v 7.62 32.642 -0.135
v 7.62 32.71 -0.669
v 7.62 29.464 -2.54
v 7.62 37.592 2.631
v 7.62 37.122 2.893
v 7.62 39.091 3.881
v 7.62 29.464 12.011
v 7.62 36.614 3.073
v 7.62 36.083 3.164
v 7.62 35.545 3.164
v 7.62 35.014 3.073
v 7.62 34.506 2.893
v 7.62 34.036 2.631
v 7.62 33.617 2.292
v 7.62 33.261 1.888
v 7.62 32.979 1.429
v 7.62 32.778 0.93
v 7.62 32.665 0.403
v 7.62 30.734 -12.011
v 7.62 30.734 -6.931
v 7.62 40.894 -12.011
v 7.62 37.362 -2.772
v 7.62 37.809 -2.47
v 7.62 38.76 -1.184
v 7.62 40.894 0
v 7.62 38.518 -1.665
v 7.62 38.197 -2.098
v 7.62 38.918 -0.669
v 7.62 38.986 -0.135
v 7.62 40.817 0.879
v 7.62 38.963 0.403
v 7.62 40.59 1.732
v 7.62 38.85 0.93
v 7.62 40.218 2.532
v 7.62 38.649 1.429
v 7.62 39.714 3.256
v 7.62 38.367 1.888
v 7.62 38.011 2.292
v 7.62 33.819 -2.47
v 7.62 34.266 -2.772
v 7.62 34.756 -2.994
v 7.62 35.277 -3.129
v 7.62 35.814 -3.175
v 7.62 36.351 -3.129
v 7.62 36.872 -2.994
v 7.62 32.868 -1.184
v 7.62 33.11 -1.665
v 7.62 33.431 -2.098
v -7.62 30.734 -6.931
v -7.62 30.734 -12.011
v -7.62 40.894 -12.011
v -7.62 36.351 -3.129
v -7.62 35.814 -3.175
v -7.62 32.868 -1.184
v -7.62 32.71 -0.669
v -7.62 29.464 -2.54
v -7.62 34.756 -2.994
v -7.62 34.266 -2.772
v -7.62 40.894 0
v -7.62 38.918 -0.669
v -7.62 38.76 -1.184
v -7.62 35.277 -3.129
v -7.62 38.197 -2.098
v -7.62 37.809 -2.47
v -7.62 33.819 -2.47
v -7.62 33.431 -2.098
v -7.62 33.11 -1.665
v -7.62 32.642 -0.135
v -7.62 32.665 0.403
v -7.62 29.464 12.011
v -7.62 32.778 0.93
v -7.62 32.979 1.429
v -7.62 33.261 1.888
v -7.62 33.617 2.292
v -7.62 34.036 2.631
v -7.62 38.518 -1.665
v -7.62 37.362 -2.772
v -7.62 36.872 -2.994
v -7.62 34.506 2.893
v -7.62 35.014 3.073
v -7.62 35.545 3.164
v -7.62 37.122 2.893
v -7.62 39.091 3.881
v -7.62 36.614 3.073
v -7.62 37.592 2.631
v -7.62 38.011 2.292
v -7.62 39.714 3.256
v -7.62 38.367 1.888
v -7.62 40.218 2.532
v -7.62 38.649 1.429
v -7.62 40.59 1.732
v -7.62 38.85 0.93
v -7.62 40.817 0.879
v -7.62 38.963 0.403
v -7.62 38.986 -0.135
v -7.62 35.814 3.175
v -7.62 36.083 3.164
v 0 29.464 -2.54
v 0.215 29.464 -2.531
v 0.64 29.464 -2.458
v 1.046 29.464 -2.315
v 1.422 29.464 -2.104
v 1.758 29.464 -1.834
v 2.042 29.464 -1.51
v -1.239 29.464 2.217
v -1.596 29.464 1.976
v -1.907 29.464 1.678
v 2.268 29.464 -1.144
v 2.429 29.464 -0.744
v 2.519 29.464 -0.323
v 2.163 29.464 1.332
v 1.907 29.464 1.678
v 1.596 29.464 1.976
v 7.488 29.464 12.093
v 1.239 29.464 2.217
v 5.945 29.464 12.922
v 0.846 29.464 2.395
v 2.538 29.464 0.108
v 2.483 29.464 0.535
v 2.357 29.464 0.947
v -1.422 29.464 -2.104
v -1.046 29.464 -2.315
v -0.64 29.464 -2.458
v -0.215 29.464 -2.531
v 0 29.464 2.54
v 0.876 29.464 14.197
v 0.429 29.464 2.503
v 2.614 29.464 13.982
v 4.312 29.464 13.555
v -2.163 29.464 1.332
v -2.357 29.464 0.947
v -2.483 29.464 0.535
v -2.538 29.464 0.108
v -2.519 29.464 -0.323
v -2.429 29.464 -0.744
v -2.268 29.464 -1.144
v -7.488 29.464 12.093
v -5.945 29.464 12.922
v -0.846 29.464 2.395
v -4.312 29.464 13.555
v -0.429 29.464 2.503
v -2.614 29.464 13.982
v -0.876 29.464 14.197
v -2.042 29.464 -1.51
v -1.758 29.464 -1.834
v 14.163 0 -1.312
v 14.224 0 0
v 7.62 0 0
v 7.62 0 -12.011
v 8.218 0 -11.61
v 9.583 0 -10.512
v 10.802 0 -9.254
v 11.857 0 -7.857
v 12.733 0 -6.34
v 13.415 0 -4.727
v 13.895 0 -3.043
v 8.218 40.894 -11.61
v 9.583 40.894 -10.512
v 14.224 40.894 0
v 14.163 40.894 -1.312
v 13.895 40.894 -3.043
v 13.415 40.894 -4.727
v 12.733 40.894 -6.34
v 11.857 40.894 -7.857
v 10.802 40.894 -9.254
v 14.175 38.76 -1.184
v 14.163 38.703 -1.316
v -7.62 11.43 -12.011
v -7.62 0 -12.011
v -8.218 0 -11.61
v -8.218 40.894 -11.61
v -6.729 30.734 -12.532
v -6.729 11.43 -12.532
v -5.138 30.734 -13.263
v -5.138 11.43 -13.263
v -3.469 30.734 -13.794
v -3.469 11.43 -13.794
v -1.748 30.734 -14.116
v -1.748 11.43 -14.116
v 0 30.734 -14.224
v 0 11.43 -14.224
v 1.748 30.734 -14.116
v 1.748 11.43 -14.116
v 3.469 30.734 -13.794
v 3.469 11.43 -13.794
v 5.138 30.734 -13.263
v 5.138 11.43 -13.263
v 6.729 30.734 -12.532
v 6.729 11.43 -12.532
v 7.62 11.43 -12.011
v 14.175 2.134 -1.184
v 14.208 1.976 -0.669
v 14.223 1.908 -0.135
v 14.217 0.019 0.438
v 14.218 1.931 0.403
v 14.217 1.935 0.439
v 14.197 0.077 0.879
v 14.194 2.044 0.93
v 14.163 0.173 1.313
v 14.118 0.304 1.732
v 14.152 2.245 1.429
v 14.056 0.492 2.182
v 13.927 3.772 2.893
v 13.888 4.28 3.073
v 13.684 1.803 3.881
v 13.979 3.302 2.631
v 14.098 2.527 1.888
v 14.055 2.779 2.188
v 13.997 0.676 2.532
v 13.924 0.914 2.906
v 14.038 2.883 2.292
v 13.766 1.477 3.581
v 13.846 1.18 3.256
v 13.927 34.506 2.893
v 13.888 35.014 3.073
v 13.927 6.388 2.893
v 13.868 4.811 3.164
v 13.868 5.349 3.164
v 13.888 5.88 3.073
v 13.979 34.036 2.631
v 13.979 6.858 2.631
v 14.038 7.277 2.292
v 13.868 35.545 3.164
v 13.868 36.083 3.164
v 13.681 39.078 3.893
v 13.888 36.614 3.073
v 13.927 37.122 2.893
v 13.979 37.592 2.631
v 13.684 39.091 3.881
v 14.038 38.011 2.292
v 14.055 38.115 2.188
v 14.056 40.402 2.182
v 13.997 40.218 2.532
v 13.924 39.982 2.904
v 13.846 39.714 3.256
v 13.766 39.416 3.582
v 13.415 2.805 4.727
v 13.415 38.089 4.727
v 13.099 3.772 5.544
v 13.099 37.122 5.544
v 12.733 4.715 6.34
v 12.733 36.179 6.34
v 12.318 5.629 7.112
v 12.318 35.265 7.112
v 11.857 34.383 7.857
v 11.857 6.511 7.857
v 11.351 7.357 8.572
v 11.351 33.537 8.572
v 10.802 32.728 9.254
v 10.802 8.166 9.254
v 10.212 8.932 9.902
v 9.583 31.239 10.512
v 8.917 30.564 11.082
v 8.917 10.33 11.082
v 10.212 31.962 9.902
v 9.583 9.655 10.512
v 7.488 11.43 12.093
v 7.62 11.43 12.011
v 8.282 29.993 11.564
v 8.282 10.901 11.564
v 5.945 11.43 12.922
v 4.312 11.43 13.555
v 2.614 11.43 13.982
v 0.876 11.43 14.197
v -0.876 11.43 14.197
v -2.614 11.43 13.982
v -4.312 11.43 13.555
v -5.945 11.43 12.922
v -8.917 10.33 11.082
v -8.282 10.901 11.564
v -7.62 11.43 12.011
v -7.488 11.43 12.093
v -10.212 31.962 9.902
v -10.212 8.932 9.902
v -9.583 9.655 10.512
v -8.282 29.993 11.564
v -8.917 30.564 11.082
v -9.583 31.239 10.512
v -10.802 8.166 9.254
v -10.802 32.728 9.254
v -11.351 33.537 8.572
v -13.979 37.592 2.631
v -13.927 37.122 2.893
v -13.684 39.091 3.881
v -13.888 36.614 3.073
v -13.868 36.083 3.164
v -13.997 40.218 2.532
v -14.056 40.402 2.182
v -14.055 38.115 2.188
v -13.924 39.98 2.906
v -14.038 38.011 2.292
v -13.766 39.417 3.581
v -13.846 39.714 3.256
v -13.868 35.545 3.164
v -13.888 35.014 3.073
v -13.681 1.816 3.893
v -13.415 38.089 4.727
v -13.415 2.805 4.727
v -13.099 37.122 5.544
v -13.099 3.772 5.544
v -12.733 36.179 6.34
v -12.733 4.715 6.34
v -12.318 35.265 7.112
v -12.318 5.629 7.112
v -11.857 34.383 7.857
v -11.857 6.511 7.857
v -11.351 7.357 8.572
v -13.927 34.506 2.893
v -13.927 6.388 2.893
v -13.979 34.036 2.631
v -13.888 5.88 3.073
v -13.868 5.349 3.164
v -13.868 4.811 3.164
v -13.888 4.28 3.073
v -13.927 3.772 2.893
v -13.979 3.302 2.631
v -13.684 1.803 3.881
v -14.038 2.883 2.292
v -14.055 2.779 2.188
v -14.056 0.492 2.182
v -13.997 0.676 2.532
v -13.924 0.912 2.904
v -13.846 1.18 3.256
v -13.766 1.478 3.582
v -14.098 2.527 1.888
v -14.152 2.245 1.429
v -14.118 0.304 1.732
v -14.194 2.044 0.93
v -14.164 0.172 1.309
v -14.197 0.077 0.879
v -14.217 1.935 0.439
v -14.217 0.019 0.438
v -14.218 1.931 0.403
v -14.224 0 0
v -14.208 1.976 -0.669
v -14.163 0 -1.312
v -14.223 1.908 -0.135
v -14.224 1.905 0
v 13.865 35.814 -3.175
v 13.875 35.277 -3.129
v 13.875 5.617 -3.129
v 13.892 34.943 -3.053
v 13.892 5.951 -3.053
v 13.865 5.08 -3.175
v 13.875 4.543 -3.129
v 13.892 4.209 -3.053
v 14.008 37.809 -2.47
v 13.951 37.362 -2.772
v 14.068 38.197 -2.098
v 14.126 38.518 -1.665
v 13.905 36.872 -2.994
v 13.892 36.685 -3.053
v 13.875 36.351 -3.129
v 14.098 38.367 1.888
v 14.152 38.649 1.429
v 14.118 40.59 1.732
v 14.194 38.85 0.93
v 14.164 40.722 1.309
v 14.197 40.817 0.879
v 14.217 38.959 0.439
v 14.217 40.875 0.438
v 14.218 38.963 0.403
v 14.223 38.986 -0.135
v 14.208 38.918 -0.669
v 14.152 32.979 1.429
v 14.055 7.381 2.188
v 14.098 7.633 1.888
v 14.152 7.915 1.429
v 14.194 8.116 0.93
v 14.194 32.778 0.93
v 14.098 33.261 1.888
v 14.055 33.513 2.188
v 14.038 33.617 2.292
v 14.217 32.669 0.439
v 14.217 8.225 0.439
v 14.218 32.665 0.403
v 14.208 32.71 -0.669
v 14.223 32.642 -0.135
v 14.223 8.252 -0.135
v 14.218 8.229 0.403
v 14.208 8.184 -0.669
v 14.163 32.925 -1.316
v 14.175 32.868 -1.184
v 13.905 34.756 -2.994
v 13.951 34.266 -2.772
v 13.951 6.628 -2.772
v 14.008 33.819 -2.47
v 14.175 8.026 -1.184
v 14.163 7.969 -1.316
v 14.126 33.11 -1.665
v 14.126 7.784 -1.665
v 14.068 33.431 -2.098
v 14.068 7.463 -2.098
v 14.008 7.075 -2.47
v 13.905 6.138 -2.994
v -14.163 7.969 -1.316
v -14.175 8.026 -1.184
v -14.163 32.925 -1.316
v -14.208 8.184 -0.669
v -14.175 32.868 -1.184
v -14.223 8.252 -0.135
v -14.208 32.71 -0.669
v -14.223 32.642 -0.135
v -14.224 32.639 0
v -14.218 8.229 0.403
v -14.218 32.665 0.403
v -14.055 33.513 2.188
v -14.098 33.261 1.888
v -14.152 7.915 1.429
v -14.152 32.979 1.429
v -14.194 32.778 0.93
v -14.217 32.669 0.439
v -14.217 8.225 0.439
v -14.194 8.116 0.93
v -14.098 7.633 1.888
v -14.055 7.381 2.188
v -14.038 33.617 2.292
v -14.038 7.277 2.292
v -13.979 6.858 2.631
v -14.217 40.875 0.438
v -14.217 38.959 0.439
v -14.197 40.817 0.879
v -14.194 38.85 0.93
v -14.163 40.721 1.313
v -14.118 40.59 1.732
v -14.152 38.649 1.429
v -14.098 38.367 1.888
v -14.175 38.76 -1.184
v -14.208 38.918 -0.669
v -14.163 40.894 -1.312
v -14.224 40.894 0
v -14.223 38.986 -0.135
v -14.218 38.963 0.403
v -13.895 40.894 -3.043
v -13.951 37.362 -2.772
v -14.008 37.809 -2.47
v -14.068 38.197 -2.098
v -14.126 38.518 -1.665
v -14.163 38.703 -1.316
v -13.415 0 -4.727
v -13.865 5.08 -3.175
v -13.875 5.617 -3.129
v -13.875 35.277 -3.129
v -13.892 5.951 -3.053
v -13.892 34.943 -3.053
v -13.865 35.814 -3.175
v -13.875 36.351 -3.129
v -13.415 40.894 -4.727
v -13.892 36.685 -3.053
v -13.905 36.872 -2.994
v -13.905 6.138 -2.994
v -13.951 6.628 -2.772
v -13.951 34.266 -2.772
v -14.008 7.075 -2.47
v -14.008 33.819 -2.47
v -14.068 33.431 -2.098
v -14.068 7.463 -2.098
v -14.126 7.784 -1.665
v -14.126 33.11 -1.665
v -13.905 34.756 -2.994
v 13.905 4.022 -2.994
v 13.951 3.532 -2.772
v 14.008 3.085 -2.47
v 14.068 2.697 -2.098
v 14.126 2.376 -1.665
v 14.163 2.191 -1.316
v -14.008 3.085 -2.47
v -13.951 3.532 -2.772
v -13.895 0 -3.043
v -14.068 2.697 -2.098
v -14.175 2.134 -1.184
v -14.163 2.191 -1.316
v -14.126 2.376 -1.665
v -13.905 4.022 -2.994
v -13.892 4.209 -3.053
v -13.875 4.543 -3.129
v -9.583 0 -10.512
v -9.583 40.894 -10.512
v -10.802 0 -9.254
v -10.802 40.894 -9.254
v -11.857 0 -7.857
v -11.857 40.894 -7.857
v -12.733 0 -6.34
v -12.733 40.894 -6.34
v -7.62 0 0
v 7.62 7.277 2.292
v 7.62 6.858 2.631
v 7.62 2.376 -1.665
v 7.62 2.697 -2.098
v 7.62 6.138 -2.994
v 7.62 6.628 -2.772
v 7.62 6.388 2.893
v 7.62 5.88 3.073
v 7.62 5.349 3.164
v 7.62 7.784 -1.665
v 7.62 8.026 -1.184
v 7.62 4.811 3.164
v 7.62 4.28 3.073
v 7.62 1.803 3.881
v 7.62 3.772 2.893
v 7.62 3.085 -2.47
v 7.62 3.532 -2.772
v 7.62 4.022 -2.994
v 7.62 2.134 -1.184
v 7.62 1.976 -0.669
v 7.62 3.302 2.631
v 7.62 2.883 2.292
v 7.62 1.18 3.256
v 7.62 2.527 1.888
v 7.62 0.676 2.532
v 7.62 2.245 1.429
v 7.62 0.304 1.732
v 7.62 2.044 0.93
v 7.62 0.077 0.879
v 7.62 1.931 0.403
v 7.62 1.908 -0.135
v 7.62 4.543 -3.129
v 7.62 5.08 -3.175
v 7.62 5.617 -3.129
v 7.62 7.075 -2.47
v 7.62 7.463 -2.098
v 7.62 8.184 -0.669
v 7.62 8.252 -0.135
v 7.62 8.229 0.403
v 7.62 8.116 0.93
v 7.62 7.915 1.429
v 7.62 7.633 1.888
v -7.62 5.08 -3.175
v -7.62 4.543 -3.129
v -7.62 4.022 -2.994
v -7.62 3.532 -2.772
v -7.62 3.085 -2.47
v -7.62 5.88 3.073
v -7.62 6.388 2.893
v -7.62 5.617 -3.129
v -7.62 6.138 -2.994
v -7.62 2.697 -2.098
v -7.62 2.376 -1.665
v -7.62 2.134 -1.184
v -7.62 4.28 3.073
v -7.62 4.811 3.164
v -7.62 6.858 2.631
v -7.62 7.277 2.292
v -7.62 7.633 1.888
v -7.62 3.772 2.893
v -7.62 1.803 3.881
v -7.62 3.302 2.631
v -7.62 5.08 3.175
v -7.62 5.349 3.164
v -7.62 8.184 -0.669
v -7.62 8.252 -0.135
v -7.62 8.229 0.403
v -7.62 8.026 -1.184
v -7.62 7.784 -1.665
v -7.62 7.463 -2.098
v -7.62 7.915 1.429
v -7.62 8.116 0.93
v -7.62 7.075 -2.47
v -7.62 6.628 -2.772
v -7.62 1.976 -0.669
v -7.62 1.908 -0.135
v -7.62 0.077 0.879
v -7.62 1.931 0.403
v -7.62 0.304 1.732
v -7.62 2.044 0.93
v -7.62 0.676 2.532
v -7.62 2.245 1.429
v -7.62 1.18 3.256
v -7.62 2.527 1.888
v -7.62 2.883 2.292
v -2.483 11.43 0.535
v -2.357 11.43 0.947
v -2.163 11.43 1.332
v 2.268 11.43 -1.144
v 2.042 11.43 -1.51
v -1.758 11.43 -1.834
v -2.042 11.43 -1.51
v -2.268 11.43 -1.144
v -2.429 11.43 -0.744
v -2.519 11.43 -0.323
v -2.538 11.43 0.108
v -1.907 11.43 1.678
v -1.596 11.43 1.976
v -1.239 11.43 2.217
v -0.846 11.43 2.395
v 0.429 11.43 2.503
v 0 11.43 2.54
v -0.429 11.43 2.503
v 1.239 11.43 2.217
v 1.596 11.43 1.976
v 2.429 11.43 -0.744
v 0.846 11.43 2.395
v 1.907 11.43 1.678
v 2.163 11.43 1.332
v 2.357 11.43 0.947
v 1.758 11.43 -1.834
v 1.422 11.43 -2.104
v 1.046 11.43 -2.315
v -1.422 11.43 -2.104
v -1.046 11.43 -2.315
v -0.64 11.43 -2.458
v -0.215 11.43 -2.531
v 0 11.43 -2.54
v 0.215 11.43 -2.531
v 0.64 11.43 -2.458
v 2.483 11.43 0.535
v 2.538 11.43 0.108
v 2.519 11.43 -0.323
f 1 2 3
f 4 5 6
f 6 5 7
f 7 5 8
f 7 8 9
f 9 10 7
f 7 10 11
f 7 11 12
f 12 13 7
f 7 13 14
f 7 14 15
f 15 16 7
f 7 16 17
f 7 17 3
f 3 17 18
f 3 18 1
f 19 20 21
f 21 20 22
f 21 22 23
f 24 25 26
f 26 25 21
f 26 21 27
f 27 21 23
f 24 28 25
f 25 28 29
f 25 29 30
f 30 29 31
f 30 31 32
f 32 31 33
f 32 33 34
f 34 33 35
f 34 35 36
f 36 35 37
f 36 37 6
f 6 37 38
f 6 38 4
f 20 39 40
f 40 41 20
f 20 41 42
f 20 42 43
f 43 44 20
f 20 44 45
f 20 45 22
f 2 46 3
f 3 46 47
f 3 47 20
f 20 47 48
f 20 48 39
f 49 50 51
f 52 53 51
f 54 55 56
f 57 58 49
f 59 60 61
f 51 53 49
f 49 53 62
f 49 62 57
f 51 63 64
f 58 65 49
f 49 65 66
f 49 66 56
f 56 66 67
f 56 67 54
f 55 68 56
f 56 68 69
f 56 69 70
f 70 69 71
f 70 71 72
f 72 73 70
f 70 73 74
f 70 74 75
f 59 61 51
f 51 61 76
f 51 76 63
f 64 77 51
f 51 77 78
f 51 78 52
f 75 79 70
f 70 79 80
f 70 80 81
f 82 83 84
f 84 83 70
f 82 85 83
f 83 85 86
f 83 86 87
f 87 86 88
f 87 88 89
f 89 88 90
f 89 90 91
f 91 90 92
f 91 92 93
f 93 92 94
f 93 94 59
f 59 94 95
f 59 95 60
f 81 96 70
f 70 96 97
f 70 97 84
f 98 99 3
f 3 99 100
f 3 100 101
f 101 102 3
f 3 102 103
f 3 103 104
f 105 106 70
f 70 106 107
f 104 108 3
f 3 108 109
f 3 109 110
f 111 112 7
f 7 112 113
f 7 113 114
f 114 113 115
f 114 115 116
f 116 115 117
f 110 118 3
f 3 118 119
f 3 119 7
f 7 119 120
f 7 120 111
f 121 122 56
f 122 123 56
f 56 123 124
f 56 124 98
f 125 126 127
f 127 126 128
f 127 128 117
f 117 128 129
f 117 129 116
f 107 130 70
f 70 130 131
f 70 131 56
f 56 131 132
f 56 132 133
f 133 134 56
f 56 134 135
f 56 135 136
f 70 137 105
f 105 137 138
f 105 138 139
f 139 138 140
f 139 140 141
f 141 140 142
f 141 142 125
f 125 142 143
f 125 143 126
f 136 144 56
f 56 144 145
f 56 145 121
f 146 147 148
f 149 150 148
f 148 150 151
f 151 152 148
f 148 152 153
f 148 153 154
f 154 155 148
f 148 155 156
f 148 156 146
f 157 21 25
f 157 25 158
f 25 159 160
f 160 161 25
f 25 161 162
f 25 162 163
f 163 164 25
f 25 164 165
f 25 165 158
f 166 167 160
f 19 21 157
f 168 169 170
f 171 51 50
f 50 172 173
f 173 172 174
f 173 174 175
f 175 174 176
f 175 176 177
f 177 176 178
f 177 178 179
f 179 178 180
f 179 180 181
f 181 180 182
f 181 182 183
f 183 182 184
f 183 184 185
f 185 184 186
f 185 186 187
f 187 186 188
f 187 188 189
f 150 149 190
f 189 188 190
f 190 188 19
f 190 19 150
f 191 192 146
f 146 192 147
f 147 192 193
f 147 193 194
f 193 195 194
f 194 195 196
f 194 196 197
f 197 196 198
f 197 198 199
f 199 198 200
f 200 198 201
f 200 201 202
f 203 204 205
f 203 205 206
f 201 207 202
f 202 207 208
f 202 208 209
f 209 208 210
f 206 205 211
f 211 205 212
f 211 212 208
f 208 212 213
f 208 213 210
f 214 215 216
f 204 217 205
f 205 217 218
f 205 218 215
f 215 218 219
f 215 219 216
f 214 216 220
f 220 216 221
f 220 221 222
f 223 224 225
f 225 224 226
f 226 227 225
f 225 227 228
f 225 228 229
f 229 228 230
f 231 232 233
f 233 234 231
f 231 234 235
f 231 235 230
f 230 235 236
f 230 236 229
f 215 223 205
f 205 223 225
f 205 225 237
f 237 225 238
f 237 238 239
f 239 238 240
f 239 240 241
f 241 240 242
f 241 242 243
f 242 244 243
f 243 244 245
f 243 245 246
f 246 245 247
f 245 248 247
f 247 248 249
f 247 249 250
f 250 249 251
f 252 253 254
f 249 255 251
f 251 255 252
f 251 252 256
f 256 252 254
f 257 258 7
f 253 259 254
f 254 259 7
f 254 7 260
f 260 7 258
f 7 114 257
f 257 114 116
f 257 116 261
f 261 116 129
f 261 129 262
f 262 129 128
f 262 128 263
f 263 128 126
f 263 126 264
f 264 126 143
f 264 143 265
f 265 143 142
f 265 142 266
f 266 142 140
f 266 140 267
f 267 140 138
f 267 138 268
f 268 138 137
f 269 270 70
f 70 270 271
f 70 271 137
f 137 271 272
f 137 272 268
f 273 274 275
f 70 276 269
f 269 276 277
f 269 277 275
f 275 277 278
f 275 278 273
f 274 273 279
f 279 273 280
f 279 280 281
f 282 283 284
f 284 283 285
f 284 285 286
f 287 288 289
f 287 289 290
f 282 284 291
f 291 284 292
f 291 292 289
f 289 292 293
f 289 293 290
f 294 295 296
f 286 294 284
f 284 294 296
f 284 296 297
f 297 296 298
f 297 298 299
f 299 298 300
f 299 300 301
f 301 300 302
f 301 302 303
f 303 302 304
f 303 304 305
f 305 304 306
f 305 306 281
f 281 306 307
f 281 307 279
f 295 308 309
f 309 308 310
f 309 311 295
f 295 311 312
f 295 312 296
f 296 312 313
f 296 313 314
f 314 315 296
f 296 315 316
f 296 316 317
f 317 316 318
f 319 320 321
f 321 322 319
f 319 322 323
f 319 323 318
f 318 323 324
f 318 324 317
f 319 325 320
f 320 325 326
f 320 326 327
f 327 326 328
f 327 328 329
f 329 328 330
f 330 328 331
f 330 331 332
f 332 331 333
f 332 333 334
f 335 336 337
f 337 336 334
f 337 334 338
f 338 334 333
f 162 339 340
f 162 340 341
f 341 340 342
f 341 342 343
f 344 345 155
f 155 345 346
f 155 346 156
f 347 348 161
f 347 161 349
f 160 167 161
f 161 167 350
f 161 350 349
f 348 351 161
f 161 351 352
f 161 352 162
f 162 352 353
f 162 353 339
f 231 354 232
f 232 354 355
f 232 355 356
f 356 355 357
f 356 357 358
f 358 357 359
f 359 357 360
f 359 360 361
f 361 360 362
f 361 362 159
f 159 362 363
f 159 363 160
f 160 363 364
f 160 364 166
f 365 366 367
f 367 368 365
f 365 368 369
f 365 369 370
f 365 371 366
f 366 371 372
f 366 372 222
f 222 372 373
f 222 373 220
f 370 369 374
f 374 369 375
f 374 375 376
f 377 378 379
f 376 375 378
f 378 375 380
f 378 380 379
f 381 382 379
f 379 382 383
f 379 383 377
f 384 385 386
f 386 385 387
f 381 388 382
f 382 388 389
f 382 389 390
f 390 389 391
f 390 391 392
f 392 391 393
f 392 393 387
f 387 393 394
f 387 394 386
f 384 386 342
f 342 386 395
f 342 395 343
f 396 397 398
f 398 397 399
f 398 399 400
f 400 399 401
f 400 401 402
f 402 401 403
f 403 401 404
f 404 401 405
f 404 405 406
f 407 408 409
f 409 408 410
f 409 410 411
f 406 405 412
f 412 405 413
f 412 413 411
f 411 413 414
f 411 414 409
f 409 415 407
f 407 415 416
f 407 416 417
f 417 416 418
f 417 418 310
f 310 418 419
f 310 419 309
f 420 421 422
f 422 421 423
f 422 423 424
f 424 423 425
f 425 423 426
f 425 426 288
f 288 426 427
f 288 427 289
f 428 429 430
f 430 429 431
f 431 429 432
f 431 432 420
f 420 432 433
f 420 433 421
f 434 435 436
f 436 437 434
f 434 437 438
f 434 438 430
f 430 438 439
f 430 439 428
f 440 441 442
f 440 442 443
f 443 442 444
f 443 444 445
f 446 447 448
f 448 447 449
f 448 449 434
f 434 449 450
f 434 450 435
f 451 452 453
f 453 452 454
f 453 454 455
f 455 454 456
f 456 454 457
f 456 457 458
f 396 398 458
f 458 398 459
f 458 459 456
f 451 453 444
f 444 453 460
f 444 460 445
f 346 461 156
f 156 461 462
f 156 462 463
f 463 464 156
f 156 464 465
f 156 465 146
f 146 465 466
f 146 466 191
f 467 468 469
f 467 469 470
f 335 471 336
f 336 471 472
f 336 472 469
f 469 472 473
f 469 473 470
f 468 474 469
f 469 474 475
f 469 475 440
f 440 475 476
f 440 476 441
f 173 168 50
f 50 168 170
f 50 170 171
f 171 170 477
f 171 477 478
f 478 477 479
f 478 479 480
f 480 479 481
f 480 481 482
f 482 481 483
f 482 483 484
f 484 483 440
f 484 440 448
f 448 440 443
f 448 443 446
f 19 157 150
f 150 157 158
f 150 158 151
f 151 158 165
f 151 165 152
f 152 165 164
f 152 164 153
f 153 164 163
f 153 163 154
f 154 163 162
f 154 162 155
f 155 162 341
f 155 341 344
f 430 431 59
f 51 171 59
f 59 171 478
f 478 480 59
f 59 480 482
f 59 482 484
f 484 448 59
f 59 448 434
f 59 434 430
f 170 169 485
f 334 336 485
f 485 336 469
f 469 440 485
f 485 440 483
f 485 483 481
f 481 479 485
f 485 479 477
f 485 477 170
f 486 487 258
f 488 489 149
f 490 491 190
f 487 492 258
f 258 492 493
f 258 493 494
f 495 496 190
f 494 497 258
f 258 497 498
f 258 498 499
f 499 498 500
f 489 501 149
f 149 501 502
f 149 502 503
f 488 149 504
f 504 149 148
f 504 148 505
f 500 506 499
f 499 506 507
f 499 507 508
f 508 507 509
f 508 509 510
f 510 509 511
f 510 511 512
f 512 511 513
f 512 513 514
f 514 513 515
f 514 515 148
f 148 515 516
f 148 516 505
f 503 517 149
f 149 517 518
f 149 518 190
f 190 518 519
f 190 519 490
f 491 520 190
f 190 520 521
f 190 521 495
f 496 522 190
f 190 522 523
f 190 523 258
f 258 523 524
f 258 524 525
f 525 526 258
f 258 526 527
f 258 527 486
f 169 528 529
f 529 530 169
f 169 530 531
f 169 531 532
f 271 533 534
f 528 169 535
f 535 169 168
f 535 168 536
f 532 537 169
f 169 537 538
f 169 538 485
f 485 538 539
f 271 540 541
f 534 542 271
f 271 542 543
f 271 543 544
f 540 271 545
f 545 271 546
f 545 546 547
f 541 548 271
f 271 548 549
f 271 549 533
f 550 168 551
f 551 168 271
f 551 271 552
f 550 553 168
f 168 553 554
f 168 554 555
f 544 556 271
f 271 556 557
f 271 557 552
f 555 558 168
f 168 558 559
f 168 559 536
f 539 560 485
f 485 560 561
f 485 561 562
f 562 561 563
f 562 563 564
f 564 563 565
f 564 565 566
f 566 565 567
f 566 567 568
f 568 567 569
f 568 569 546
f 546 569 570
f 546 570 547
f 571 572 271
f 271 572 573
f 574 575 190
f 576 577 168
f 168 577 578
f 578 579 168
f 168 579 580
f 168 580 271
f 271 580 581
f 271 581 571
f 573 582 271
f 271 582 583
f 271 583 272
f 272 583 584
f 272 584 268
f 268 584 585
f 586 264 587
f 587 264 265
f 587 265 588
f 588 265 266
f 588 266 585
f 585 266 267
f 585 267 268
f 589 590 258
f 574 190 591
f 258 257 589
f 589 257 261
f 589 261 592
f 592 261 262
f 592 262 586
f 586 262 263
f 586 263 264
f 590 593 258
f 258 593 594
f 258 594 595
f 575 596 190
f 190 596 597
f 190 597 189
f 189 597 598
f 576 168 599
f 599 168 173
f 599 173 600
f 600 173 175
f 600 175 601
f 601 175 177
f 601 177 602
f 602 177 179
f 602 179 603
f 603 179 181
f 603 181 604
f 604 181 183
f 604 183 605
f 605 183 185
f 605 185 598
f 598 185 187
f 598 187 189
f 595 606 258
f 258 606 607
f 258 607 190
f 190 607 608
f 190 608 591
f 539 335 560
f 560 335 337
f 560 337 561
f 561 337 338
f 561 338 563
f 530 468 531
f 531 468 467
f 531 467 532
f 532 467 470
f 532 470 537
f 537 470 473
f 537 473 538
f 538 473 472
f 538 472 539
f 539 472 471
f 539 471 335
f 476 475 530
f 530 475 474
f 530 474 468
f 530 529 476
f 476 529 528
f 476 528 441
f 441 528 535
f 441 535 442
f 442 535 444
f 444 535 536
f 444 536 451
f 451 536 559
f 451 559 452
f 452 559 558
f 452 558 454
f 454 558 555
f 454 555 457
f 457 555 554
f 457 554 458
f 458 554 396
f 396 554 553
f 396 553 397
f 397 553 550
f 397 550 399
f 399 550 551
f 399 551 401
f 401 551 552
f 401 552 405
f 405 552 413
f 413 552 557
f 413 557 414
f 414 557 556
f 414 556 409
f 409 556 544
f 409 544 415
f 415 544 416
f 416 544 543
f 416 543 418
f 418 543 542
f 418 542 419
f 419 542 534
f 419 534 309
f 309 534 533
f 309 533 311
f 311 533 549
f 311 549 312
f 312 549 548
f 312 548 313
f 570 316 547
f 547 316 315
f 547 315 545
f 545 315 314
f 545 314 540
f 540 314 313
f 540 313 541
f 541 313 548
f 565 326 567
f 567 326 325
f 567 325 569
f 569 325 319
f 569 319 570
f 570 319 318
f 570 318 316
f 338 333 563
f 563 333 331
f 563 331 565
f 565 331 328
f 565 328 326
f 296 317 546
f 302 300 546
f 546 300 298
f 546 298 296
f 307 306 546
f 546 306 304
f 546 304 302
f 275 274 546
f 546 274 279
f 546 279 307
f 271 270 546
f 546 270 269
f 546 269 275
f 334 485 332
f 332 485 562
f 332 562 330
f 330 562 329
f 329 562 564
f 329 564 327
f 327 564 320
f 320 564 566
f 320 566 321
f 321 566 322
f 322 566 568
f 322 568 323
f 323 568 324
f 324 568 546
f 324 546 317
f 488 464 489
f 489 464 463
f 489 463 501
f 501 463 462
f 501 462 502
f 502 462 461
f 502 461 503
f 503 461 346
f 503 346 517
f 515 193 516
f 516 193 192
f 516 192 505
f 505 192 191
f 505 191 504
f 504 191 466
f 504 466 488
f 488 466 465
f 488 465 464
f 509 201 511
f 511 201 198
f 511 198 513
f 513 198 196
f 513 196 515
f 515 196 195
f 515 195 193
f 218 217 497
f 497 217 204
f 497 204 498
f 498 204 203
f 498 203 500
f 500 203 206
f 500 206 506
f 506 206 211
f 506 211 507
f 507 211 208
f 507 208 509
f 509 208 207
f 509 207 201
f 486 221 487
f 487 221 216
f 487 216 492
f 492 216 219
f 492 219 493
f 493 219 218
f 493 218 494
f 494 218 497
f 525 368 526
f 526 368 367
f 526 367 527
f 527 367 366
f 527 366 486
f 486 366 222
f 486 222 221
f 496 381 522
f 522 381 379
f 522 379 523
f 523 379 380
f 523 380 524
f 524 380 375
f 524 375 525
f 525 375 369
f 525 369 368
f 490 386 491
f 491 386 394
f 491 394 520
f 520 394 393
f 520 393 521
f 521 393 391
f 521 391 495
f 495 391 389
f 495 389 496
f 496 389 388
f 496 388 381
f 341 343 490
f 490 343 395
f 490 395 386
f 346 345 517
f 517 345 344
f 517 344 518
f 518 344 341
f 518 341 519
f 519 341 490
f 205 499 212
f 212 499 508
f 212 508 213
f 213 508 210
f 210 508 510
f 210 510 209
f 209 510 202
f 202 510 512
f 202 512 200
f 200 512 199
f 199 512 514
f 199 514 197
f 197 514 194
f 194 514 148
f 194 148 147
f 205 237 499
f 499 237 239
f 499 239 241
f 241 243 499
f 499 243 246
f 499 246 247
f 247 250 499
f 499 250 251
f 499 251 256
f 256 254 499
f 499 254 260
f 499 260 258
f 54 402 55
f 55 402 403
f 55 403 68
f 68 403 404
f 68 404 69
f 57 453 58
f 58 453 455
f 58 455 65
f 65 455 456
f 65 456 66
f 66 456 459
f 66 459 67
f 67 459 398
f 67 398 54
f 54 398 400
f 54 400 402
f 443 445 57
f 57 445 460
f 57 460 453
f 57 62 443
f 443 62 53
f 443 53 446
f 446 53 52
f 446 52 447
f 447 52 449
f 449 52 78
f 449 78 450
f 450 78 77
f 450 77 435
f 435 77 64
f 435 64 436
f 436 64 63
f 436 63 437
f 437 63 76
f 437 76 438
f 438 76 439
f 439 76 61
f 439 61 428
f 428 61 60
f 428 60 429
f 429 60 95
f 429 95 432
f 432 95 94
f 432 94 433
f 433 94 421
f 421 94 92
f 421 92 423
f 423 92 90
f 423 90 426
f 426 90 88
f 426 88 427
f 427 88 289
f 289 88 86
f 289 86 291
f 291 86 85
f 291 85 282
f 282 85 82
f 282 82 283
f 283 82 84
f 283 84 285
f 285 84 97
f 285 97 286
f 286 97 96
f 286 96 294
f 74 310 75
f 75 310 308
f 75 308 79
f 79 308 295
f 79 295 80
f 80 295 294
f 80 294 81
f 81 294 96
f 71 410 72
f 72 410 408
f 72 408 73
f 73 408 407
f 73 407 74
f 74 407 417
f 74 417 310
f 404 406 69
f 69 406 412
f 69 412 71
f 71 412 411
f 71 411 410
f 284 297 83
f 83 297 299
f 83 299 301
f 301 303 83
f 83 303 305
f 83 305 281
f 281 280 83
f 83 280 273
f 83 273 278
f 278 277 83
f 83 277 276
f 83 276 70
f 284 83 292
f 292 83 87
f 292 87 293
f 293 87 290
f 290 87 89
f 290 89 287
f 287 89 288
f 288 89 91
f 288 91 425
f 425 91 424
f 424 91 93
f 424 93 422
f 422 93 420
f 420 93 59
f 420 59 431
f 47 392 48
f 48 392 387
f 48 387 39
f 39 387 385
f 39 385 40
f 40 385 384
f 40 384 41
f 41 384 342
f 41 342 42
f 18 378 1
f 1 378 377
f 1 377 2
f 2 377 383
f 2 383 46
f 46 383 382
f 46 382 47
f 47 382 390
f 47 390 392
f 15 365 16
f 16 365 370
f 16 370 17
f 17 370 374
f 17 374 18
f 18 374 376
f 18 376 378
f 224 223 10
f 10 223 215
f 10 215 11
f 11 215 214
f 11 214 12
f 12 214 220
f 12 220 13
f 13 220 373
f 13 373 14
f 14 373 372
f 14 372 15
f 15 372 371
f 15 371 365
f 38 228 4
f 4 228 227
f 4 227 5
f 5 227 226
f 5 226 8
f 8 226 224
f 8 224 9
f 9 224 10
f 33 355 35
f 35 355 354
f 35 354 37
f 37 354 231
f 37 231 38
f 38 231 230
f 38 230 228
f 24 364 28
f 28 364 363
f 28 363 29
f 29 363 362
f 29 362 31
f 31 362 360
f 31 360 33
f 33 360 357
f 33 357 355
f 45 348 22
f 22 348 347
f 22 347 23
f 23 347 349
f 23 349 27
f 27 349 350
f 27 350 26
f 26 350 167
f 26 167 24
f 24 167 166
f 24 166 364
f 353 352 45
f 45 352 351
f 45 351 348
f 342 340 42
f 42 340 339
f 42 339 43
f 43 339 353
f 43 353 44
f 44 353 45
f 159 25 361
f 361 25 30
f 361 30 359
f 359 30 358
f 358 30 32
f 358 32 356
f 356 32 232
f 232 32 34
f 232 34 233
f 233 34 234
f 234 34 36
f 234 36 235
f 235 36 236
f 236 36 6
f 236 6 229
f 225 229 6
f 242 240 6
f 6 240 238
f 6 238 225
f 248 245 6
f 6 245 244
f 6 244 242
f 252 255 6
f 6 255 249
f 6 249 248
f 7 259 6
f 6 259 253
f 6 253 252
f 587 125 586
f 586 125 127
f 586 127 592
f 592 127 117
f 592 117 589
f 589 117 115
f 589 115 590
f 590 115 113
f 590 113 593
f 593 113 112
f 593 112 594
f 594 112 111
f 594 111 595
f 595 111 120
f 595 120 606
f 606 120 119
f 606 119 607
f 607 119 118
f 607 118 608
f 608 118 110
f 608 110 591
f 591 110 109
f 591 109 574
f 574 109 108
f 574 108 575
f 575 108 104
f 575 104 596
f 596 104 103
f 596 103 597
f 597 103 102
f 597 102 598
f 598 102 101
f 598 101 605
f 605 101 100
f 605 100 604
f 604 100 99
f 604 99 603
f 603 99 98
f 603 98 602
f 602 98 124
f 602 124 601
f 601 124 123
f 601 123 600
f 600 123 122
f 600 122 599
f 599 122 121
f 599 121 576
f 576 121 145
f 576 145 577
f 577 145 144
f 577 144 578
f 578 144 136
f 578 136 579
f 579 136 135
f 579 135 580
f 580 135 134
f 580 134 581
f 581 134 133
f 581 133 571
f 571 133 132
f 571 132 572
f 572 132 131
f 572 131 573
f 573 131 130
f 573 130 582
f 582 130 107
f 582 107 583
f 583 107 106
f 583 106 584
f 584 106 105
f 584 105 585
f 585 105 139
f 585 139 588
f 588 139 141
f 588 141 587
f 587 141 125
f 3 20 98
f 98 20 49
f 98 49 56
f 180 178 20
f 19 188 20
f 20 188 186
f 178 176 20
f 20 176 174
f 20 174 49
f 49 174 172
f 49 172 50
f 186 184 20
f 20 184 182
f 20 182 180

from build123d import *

# Parameters (mm, degrees)
SKETCH1_R               = 14.224
BOSS_EXTRUDE1_DEPTH     = 40.894
CUT_EXTRUDE1_START      = -11.43
CUT_EXTRUDE1_DEPTH      = 11.43
CUT_EXTRUDE2_DEPTH      = 11.43
CUT_EXTRUDE3_DEPTH      = 49.495378625
CUT_EXTRUDE3_DEPTH_BACK = 49.495378625
SKETCH4_R               = 3.175
SKETCH5_R               = 2.54
CUT_EXTRUDE4_DEPTH      = 36.67592549
BOSS_EXTRUDE2_REACH     = 50.495
BOSS_EXTRUDE3_DEPTH     = 1.27


with BuildPart() as part:
    # Sketch1 → Boss-Extrude1 (new body)
    with BuildSketch(Plane(origin=(0, 0, 0), x_dir=(1, 0, 0), z_dir=(0, 1, 0))):
        with Locations(Location((0, 0, 0), (0, 0, 270))):
            Circle(SKETCH1_R)
    extrude(amount=BOSS_EXTRUDE1_DEPTH)

    # Sketch2 → Cut-Extrude1 (cut)
    with BuildSketch(Plane(origin=(0, 40.894, 0), x_dir=(1, 0, 0), z_dir=(0, 1, 0)).offset(CUT_EXTRUDE1_START)):
        with BuildLine():
            Line((7.62, 12.010735864), (7.62, -12.010735864))
            ThreePointArc((7.62, -12.010735864), (0, -14.224), (-7.62, -12.010735864))
            Line((-7.62, -12.010735864), (-7.62, 12.010735864))
            ThreePointArc((-7.62, 12.010735864), (0, 14.224), (7.62, 12.010735864))
        make_face()
    extrude(amount=CUT_EXTRUDE1_DEPTH, mode=Mode.SUBTRACT)

    # Sketch3 → Cut-Extrude2 (cut)
    with BuildSketch(Plane.XZ):
        with BuildLine():
            Line((-7.62, 12.010735864), (-7.62, -12.010735864))
            ThreePointArc((-7.62, -12.010735864), (0, -14.224), (7.62, -12.010735864))
            Line((7.62, -12.010735864), (7.62, 12.010735864))
            ThreePointArc((7.62, 12.010735864), (0, 14.224), (-7.62, 12.010735864))
        make_face()
    extrude(amount=-CUT_EXTRUDE2_DEPTH, mode=Mode.SUBTRACT)

    # Sketch4 → Cut-Extrude3 (cut, two sides: drawn at the far end of the back side and taken through both)
    with BuildSketch(Plane(origin=(-7.62, 0, 0), x_dir=(0, 0, -1), z_dir=(1, 0, 0)).offset(-CUT_EXTRUDE3_DEPTH_BACK)):
        with Locations(Location((0, 35.814, 0), (0, 0, 270))):
            Circle(SKETCH4_R)
        with Locations(Location((0, 5.08, 0), (0, 0, 270))):
            Circle(SKETCH4_R)
        with BuildLine():
            Line((-3.881359545, 39.091414848), (-12.010735864, 29.464))
            Line((-12.010735864, 29.464), (-12.010735864, 40.894))
            Line((-12.010735864, 40.894), (0, 40.894))
            ThreePointArc((0, 40.894), (-2.139758464, 40.42136733), (-3.881359545, 39.091414848))
        make_face()
        with BuildLine():
            Line((-3.881359545, 1.802585152), (-12.010735864, 11.43))
            Line((-12.010735864, 11.43), (-12.010735864, 0))
            Line((-12.010735864, 0), (0, 0))
            ThreePointArc((0, 0), (-2.139758464, 0.47263267), (-3.881359545, 1.802585152))
        make_face()
    extrude(amount=CUT_EXTRUDE3_DEPTH + CUT_EXTRUDE3_DEPTH_BACK, mode=Mode.SUBTRACT)

    # Sketch5 → Cut-Extrude4 (cut, through all)
    with BuildSketch(Plane(origin=(0, 29.464, 0), x_dir=(1, 0, 0), z_dir=(0, 1, 0))):
        with Locations(Location((0, 0, 0), (0, 0, 270))):
            Circle(SKETCH5_R)
    extrude(amount=-CUT_EXTRUDE4_DEPTH, mode=Mode.SUBTRACT)

    # Boss-Extrude2: up to this face of the body (flat: up to its plane)
    boss_extrude2_end = Plane(part.part.faces().sort_by_distance((7.62, 29.730021804, 0))[0])
    # Sketch6 → Boss-Extrude2 (add, up to the picked face)
    with BuildSketch(Plane(origin=(-7.62, 0, 0), x_dir=(0, 0, -1), z_dir=(1, 0, 0)), mode=Mode.PRIVATE) as boss_extrude2_sk1:
        Polygon((2.54, 29.464), (12.010735864, 29.464), (12.010735864, 30.734), (6.930735864, 30.734), align=None)
    boss_extrude2_tool1 = split(extrude(boss_extrude2_sk1.sketch, amount=BOSS_EXTRUDE2_REACH, mode=Mode.PRIVATE), bisect_by=boss_extrude2_end, keep=Keep.BOTH, mode=Mode.PRIVATE)
    add(boss_extrude2_tool1.solids().sort_by(Axis((-7.62, 30.035129, -8.262642), (1, 0, 0)))[0])

    # Sketch7 → Boss-Extrude3 (add)
    with BuildSketch(Plane(origin=(0, 29.464, 0), x_dir=(1, 0, 0), z_dir=(0, 1, 0))):
        with BuildLine():
            Line((-7.62, 12.010735864), (7.62, 12.010735864))
            ThreePointArc((7.62, 12.010735864), (0, 14.224), (-7.62, 12.010735864))
        make_face()
    extrude(amount=BOSS_EXTRUDE3_DEPTH)


solid = part.part
